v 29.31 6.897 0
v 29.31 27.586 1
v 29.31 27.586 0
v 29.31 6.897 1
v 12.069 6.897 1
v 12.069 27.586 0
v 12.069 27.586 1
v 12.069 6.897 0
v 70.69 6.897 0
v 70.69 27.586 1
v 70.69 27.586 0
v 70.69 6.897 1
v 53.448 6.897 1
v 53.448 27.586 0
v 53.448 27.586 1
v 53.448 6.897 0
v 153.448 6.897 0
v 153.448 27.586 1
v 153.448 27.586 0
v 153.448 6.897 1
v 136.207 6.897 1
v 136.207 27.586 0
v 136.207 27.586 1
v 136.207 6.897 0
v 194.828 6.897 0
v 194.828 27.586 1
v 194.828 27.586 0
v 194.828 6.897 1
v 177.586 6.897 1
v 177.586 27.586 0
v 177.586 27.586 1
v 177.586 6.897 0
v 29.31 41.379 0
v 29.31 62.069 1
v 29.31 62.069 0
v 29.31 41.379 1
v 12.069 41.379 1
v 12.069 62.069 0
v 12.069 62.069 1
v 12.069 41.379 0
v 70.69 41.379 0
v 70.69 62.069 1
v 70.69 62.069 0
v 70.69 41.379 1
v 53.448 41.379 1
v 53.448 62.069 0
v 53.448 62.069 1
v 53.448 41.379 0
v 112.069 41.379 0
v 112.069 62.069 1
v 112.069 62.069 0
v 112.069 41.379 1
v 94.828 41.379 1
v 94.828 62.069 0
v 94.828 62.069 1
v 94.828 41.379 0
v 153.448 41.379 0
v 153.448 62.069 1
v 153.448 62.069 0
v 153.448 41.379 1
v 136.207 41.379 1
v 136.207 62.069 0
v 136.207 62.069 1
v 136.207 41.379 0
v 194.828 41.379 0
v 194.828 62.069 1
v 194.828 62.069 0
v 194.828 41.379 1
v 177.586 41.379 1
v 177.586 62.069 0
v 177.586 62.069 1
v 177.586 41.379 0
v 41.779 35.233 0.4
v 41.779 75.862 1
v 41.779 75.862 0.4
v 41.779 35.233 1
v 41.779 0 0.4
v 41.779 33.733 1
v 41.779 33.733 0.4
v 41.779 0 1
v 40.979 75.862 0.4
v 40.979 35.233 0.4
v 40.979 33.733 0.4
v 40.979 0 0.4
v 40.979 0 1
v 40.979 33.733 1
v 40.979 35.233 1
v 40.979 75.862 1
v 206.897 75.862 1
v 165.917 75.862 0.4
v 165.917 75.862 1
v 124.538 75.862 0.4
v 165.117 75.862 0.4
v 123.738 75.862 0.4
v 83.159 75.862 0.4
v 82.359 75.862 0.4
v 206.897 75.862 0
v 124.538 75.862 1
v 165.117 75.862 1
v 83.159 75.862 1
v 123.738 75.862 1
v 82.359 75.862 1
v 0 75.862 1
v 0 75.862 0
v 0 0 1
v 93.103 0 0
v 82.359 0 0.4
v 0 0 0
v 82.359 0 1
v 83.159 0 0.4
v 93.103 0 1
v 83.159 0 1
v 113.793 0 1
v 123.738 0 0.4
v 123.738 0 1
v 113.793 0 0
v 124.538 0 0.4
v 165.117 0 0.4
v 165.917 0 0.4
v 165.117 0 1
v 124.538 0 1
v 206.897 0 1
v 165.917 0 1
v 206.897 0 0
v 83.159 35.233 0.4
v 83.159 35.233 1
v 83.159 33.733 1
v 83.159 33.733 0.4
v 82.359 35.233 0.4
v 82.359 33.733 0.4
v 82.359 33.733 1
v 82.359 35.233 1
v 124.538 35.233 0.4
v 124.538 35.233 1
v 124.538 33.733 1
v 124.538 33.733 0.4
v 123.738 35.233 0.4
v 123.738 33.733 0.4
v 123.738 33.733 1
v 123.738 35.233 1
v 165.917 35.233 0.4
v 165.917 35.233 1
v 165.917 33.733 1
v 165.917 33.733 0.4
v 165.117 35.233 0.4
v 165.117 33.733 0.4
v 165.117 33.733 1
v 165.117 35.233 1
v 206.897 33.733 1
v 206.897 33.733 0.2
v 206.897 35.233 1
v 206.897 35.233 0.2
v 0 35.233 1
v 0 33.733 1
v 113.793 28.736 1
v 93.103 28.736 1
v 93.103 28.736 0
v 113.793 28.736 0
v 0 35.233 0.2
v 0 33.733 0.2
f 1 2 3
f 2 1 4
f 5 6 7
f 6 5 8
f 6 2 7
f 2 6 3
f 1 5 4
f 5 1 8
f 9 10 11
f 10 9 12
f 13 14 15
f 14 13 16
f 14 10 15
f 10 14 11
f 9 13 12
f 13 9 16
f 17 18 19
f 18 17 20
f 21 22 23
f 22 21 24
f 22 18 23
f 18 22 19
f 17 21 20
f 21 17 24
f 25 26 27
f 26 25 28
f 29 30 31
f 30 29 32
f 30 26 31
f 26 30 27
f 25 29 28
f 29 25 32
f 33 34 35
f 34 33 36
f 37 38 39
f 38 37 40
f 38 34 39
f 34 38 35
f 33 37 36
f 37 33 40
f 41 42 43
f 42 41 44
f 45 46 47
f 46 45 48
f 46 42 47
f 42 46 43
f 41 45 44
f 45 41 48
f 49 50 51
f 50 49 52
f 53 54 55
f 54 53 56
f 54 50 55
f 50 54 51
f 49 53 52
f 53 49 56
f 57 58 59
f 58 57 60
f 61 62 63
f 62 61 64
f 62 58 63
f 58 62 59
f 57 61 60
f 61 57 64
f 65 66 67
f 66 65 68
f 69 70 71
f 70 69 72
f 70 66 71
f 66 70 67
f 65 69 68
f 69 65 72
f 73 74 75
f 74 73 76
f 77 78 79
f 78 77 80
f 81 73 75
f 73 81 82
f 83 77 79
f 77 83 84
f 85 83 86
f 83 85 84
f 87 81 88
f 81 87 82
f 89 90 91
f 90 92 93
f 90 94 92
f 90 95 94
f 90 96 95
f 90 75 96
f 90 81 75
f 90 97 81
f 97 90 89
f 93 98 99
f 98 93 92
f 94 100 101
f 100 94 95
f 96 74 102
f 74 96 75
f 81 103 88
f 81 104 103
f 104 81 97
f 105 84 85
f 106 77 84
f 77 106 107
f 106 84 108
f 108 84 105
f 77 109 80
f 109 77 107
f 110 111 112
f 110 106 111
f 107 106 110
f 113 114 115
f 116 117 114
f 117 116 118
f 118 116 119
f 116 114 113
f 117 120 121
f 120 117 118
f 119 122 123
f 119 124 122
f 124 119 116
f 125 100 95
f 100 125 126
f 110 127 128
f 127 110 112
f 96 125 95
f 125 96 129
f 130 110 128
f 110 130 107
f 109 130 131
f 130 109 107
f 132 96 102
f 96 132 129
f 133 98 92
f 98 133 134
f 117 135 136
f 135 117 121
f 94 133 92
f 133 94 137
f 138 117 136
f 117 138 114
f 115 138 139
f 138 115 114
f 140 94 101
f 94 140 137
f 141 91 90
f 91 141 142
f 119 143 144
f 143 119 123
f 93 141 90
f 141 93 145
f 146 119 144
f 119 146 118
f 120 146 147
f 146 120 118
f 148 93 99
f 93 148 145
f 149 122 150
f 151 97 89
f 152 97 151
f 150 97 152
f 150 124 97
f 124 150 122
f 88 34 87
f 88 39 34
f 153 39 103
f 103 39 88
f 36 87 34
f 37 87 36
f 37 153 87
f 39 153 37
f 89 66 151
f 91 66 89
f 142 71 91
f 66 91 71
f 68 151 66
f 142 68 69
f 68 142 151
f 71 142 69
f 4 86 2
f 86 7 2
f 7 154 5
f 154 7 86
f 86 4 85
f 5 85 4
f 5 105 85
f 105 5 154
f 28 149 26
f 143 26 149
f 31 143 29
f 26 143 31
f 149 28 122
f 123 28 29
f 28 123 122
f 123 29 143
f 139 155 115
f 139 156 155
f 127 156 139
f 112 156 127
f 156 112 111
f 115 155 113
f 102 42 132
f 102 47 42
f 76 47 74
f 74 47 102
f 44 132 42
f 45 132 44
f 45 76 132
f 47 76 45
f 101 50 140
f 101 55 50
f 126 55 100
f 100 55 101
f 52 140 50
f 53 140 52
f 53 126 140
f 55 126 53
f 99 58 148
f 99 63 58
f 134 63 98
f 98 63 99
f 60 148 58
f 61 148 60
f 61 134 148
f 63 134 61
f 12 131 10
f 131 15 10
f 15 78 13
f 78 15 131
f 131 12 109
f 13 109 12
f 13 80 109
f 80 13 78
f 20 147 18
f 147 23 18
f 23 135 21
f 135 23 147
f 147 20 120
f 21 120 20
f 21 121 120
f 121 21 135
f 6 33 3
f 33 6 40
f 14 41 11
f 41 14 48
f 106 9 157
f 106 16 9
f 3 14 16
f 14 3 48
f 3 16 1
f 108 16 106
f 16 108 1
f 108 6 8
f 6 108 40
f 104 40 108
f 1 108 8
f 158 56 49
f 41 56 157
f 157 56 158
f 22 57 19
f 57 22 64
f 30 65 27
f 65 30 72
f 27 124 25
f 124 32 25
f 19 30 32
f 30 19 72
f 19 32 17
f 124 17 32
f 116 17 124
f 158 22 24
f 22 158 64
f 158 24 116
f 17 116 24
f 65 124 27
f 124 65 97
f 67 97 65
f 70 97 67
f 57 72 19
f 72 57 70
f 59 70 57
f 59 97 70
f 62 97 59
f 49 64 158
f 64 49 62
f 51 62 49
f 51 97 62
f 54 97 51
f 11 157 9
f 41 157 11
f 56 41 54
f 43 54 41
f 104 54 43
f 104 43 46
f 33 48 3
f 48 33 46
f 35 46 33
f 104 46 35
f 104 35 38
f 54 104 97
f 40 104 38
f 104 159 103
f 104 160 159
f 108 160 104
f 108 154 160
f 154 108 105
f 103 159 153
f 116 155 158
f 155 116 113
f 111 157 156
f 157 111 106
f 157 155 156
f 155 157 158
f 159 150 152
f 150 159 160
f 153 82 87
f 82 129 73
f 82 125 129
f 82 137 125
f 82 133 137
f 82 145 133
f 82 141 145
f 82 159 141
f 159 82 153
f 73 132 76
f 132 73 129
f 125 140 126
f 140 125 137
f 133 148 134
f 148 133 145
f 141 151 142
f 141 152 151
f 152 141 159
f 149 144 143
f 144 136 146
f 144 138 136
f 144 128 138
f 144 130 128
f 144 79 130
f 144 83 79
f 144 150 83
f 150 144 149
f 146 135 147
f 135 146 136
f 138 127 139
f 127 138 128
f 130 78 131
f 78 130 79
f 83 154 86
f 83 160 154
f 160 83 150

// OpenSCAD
/*
 * PROMPT: H0 scale (1:87) PRL-era police station front wall panel, flat for FDM printing.
 * Five bays, ground floor has entrance door in centre bay (no window there),
 * upper floor has windows in all five bays. Horizontal cornice groove at
 * floor line, vertical panel-joint grooves at bay boundaries.
 */

$fn = 32;

S          = 1/87;
panel_t    = 1.0;

bld_w      = 18000*S;   // 206.9 mm
floor_h    = 3000*S;    //  34.5 mm
bld_h      = 2*floor_h; //  69.0 mm
parapet_h  = 600*S;     //   6.9 mm
wall_panel_h = bld_h + parapet_h; // 75.9 mm

n_bays     = 5;
bay_w      = bld_w / n_bays;  // 41.4 mm
center_bay = 2;

win_w      = 1500*S;    // 17.2 mm
win_h      = 1800*S;    // 20.7 mm
door_w     = 1800*S;    // 20.7 mm
door_h     = 2500*S;    // 28.7 mm

cornice_w  = 1.5;
cornice_d  = 0.8;
groove_w   = 0.8;
groove_d   = 0.6;

module wall_front() {
    difference() {
        // Base slab, exterior face at Z = panel_t (face up)
        cube([bld_w, wall_panel_h, panel_t]);

        // --- Windows ---
        // Ground floor: bays 0,1,3,4 (skip centre bay 2 — door there)
        for (b = [0:n_bays-1]) {
            if (b != center_bay) {
                wx = b*bay_w + (bay_w - win_w)/2;
                wy = 0*floor_h + (floor_h - win_h)/2;
                translate([wx, wy, -1])
                    cube([win_w, win_h, panel_t+2]);
            }
        }
        // Upper floor: all 5 bays
        for (b = [0:n_bays-1]) {
            wx = b*bay_w + (bay_w - win_w)/2;
            wy = 1*floor_h + (floor_h - win_h)/2;
            translate([wx, wy, -1])
                cube([win_w, win_h, panel_t+2]);
        }

        // --- Entrance door (centre bay, ground floor, through hole) ---
        dx = center_bay*bay_w + (bay_w - door_w)/2;
        translate([dx, 0, -1])
            cube([door_w, door_h, panel_t+2]);

        // --- Vertical panel-joint grooves on exterior face ---
        for (b = [1:n_bays-1]) {
            gx = b*bay_w - groove_w/2;
            translate([gx, 0, panel_t - groove_d])
                cube([groove_w, wall_panel_h, groove_d+1]);
        }

        // --- Horizontal cornice groove at floor line ---
        cy = floor_h - cornice_w/2;
        translate([0, cy, panel_t - cornice_d])
            cube([bld_w, cornice_w, cornice_d+1]);
    }
}

wall_front();
